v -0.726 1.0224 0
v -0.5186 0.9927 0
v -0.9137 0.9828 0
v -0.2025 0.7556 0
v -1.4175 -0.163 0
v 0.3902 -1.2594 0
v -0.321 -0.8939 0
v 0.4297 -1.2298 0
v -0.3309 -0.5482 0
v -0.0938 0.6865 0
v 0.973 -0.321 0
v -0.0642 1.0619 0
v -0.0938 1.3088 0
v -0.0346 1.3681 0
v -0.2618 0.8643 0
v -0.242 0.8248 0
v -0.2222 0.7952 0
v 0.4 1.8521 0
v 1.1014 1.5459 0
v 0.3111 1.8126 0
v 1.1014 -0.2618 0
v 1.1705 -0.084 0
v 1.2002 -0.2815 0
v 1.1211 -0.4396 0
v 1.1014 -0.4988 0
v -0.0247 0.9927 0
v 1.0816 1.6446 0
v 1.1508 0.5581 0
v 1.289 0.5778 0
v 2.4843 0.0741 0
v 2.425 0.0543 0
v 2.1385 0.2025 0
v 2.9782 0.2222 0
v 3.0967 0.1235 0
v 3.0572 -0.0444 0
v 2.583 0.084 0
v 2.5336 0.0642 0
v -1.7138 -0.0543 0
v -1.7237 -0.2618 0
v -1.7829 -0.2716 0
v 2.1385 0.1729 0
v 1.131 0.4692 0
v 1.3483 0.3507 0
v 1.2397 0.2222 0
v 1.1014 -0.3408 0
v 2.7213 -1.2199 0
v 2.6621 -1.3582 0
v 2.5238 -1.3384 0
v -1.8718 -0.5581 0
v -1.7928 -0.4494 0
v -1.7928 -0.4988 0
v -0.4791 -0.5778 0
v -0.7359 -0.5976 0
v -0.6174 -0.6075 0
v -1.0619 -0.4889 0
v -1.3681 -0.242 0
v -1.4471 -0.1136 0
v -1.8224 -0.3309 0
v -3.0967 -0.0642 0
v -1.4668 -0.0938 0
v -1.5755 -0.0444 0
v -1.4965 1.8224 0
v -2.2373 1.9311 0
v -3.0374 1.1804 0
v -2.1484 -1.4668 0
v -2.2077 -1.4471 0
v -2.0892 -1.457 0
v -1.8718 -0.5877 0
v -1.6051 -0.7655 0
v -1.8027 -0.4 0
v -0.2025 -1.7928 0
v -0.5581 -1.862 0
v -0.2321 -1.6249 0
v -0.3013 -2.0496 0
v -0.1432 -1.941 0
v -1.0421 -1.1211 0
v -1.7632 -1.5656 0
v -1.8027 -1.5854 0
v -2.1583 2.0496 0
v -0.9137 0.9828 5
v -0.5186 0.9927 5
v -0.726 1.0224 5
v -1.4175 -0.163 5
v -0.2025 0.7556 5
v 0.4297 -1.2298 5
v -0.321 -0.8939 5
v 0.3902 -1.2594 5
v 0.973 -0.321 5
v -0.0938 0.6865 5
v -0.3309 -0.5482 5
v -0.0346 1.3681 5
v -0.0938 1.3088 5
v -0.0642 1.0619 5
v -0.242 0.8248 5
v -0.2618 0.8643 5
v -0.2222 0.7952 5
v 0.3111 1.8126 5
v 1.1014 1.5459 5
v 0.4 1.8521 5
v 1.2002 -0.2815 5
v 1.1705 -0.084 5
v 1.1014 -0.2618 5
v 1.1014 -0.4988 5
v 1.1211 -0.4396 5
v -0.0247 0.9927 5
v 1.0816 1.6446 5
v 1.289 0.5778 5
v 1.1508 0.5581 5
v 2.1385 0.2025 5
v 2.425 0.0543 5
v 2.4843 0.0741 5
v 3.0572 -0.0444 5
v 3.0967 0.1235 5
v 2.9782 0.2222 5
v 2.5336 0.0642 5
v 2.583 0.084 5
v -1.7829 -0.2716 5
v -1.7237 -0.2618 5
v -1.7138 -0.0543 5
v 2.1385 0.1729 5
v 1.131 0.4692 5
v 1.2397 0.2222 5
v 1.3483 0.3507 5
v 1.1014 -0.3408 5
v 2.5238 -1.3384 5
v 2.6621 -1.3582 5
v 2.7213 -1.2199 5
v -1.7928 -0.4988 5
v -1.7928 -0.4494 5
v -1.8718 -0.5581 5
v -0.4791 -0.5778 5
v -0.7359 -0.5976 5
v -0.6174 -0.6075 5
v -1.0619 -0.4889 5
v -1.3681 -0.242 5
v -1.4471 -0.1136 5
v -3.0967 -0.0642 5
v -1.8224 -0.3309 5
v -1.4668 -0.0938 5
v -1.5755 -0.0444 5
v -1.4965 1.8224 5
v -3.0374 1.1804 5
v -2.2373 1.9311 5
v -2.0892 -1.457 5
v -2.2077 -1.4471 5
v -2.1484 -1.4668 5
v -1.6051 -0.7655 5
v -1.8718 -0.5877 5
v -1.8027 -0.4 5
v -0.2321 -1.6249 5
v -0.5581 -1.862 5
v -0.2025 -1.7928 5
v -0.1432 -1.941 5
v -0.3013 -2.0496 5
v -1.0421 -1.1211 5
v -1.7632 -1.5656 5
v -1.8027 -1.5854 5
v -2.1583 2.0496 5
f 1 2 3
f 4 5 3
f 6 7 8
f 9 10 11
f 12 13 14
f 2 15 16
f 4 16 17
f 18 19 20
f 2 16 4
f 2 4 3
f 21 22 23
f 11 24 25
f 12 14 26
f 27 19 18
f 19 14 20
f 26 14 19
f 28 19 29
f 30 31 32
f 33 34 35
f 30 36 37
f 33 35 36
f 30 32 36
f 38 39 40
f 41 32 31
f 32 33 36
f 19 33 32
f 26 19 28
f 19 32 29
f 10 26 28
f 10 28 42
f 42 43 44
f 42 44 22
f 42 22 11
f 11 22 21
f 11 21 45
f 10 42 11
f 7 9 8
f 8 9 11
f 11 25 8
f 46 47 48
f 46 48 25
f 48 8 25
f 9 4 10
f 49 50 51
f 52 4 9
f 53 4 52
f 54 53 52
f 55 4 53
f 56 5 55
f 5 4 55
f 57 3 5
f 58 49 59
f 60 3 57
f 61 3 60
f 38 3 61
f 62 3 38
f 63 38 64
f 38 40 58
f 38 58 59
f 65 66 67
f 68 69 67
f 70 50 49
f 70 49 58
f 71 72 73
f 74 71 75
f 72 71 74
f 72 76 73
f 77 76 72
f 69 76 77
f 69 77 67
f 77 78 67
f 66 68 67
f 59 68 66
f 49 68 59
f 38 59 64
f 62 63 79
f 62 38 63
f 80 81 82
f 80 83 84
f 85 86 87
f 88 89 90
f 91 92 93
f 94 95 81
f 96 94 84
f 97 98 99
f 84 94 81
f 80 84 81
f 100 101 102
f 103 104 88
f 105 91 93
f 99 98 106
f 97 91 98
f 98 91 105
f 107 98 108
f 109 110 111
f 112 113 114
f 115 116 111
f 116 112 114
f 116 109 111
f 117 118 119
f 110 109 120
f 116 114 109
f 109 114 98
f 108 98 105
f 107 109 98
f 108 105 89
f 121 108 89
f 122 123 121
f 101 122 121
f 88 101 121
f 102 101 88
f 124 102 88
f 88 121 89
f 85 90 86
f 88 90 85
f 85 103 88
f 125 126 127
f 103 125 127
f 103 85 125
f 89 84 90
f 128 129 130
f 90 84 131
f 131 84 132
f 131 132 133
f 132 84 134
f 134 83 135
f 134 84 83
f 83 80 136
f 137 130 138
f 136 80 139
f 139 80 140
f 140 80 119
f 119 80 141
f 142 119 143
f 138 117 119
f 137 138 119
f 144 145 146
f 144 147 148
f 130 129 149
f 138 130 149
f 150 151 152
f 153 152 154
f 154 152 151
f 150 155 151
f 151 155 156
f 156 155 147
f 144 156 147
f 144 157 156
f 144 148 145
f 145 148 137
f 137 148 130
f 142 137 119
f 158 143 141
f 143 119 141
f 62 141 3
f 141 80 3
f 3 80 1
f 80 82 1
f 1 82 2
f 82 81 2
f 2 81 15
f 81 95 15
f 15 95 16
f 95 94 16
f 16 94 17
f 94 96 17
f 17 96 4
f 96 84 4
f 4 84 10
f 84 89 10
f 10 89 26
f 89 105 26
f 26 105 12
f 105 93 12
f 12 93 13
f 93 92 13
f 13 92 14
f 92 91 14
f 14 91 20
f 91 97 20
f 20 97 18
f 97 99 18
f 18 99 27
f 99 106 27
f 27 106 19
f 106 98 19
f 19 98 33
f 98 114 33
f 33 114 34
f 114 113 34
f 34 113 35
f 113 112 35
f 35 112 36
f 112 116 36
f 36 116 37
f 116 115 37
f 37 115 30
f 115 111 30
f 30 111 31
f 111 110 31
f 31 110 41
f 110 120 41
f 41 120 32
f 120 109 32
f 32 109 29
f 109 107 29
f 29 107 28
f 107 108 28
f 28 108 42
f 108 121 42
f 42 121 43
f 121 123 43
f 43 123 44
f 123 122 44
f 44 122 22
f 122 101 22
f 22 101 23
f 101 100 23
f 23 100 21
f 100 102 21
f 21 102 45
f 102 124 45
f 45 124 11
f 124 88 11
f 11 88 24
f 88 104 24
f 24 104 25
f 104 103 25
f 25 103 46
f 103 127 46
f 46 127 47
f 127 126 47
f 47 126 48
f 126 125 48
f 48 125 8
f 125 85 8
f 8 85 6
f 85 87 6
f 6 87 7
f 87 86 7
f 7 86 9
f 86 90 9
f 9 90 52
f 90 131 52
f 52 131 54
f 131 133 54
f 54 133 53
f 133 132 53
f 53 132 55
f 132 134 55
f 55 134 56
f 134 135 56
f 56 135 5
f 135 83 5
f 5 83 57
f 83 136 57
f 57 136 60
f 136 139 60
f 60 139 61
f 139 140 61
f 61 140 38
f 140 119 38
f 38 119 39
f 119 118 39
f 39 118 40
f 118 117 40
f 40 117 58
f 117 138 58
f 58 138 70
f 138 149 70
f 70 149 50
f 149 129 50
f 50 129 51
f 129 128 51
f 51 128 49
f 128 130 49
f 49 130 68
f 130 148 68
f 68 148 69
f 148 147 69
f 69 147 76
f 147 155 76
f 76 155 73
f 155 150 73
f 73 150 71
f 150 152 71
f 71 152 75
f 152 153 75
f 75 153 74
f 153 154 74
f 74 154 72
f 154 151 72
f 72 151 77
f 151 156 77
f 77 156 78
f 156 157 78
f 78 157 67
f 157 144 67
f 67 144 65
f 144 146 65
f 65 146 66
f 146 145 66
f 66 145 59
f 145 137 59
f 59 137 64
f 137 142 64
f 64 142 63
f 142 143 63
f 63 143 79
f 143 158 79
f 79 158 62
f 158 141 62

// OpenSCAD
// Module names are of the form poly_<inkscape-path-id>().  As a result,
// you can associate a polygon in this OpenSCAD program with the corresponding
// SVG element in the Inkscape document by looking for the XML element with
// the attribute id="inkscape-path-id".

// fudge value is used to ensure that subtracted solids are a tad taller
// in the z dimension than the polygon being subtracted from.  This helps
// keep the resulting .stl file manifold.
fudge = 0.1;

module poly_path4250(h)
{
  scale([25.4/90, -25.4/90, 1]) union()
  {
    linear_extrude(height=h)
      polygon([[1.417500,-6.562500],[3.832500,-5.827500],[3.902500,-5.477500],[10.552500,-0.787500],[10.972500,-0.437500],[10.832500,0.157500],[9.152500,-0.297500],[8.977500,-0.227500],[8.802500,-0.262500],[8.592500,-0.192500],[7.577500,-0.612500],[7.577500,-0.717500],[4.567500,-2.047500],[4.077500,-1.977500],[4.007500,-1.662500],[4.777500,-1.242500],[4.392500,-0.787500],[4.147500,0.297500],[4.252500,0.997500],[3.902500,0.927500],[3.902500,1.207500],[3.447500,1.137500],[3.972500,1.557500],[3.902500,1.767500],[9.642500,4.322500],[9.432500,4.812500],[8.942500,4.742500],[1.522500,4.357500],[1.382500,4.462500],[-1.137500,3.167500],[-1.172500,1.942500],[-1.697500,2.047500],[-2.187500,2.152500],[-2.607500,2.117500],[-3.762500,1.732500],[-4.847500,0.857500],[-5.022500,0.577500],[-5.127500,0.402500],[-5.197500,0.332500],[-5.582500,0.157500],[-6.072500,0.192500],[-6.107500,0.927500],[-6.317500,0.962500],[-6.457500,1.172500],[-6.387500,1.417500],[-6.352500,1.592500],[-6.352500,1.767500],[-6.492500,1.872500],[-6.632500,1.977500],[-6.632500,2.082500],[-5.687500,2.712500],[-3.692500,3.972500],[-0.822500,5.757500],[-0.717500,6.352500],[-0.507500,6.877500],[-1.067500,7.262500],[-1.977500,6.597500],[-6.247500,5.547500],[-6.387500,5.617500],[-7.402500,5.162500],[-7.612500,5.197500],[-7.822500,5.127500],[-10.972500,0.227500],[-10.762500,-4.182500],[-7.927500,-6.842500],[-7.647500,-7.262500],[-5.302500,-6.457500],[-3.237500,-3.482500],[-2.572500,-3.622500],[-1.837500,-3.517500],[-0.927500,-3.062500],[-0.857500,-2.922500],[-0.787500,-2.817500],[-0.717500,-2.677500],[-0.332500,-2.432500],[-0.087500,-3.517500],[-0.227500,-3.762500],[-0.332500,-4.637500],[-0.122500,-4.847500],[1.102500,-6.422500],[1.417500,-6.562500]]);
  }
}

poly_path4250(5);
